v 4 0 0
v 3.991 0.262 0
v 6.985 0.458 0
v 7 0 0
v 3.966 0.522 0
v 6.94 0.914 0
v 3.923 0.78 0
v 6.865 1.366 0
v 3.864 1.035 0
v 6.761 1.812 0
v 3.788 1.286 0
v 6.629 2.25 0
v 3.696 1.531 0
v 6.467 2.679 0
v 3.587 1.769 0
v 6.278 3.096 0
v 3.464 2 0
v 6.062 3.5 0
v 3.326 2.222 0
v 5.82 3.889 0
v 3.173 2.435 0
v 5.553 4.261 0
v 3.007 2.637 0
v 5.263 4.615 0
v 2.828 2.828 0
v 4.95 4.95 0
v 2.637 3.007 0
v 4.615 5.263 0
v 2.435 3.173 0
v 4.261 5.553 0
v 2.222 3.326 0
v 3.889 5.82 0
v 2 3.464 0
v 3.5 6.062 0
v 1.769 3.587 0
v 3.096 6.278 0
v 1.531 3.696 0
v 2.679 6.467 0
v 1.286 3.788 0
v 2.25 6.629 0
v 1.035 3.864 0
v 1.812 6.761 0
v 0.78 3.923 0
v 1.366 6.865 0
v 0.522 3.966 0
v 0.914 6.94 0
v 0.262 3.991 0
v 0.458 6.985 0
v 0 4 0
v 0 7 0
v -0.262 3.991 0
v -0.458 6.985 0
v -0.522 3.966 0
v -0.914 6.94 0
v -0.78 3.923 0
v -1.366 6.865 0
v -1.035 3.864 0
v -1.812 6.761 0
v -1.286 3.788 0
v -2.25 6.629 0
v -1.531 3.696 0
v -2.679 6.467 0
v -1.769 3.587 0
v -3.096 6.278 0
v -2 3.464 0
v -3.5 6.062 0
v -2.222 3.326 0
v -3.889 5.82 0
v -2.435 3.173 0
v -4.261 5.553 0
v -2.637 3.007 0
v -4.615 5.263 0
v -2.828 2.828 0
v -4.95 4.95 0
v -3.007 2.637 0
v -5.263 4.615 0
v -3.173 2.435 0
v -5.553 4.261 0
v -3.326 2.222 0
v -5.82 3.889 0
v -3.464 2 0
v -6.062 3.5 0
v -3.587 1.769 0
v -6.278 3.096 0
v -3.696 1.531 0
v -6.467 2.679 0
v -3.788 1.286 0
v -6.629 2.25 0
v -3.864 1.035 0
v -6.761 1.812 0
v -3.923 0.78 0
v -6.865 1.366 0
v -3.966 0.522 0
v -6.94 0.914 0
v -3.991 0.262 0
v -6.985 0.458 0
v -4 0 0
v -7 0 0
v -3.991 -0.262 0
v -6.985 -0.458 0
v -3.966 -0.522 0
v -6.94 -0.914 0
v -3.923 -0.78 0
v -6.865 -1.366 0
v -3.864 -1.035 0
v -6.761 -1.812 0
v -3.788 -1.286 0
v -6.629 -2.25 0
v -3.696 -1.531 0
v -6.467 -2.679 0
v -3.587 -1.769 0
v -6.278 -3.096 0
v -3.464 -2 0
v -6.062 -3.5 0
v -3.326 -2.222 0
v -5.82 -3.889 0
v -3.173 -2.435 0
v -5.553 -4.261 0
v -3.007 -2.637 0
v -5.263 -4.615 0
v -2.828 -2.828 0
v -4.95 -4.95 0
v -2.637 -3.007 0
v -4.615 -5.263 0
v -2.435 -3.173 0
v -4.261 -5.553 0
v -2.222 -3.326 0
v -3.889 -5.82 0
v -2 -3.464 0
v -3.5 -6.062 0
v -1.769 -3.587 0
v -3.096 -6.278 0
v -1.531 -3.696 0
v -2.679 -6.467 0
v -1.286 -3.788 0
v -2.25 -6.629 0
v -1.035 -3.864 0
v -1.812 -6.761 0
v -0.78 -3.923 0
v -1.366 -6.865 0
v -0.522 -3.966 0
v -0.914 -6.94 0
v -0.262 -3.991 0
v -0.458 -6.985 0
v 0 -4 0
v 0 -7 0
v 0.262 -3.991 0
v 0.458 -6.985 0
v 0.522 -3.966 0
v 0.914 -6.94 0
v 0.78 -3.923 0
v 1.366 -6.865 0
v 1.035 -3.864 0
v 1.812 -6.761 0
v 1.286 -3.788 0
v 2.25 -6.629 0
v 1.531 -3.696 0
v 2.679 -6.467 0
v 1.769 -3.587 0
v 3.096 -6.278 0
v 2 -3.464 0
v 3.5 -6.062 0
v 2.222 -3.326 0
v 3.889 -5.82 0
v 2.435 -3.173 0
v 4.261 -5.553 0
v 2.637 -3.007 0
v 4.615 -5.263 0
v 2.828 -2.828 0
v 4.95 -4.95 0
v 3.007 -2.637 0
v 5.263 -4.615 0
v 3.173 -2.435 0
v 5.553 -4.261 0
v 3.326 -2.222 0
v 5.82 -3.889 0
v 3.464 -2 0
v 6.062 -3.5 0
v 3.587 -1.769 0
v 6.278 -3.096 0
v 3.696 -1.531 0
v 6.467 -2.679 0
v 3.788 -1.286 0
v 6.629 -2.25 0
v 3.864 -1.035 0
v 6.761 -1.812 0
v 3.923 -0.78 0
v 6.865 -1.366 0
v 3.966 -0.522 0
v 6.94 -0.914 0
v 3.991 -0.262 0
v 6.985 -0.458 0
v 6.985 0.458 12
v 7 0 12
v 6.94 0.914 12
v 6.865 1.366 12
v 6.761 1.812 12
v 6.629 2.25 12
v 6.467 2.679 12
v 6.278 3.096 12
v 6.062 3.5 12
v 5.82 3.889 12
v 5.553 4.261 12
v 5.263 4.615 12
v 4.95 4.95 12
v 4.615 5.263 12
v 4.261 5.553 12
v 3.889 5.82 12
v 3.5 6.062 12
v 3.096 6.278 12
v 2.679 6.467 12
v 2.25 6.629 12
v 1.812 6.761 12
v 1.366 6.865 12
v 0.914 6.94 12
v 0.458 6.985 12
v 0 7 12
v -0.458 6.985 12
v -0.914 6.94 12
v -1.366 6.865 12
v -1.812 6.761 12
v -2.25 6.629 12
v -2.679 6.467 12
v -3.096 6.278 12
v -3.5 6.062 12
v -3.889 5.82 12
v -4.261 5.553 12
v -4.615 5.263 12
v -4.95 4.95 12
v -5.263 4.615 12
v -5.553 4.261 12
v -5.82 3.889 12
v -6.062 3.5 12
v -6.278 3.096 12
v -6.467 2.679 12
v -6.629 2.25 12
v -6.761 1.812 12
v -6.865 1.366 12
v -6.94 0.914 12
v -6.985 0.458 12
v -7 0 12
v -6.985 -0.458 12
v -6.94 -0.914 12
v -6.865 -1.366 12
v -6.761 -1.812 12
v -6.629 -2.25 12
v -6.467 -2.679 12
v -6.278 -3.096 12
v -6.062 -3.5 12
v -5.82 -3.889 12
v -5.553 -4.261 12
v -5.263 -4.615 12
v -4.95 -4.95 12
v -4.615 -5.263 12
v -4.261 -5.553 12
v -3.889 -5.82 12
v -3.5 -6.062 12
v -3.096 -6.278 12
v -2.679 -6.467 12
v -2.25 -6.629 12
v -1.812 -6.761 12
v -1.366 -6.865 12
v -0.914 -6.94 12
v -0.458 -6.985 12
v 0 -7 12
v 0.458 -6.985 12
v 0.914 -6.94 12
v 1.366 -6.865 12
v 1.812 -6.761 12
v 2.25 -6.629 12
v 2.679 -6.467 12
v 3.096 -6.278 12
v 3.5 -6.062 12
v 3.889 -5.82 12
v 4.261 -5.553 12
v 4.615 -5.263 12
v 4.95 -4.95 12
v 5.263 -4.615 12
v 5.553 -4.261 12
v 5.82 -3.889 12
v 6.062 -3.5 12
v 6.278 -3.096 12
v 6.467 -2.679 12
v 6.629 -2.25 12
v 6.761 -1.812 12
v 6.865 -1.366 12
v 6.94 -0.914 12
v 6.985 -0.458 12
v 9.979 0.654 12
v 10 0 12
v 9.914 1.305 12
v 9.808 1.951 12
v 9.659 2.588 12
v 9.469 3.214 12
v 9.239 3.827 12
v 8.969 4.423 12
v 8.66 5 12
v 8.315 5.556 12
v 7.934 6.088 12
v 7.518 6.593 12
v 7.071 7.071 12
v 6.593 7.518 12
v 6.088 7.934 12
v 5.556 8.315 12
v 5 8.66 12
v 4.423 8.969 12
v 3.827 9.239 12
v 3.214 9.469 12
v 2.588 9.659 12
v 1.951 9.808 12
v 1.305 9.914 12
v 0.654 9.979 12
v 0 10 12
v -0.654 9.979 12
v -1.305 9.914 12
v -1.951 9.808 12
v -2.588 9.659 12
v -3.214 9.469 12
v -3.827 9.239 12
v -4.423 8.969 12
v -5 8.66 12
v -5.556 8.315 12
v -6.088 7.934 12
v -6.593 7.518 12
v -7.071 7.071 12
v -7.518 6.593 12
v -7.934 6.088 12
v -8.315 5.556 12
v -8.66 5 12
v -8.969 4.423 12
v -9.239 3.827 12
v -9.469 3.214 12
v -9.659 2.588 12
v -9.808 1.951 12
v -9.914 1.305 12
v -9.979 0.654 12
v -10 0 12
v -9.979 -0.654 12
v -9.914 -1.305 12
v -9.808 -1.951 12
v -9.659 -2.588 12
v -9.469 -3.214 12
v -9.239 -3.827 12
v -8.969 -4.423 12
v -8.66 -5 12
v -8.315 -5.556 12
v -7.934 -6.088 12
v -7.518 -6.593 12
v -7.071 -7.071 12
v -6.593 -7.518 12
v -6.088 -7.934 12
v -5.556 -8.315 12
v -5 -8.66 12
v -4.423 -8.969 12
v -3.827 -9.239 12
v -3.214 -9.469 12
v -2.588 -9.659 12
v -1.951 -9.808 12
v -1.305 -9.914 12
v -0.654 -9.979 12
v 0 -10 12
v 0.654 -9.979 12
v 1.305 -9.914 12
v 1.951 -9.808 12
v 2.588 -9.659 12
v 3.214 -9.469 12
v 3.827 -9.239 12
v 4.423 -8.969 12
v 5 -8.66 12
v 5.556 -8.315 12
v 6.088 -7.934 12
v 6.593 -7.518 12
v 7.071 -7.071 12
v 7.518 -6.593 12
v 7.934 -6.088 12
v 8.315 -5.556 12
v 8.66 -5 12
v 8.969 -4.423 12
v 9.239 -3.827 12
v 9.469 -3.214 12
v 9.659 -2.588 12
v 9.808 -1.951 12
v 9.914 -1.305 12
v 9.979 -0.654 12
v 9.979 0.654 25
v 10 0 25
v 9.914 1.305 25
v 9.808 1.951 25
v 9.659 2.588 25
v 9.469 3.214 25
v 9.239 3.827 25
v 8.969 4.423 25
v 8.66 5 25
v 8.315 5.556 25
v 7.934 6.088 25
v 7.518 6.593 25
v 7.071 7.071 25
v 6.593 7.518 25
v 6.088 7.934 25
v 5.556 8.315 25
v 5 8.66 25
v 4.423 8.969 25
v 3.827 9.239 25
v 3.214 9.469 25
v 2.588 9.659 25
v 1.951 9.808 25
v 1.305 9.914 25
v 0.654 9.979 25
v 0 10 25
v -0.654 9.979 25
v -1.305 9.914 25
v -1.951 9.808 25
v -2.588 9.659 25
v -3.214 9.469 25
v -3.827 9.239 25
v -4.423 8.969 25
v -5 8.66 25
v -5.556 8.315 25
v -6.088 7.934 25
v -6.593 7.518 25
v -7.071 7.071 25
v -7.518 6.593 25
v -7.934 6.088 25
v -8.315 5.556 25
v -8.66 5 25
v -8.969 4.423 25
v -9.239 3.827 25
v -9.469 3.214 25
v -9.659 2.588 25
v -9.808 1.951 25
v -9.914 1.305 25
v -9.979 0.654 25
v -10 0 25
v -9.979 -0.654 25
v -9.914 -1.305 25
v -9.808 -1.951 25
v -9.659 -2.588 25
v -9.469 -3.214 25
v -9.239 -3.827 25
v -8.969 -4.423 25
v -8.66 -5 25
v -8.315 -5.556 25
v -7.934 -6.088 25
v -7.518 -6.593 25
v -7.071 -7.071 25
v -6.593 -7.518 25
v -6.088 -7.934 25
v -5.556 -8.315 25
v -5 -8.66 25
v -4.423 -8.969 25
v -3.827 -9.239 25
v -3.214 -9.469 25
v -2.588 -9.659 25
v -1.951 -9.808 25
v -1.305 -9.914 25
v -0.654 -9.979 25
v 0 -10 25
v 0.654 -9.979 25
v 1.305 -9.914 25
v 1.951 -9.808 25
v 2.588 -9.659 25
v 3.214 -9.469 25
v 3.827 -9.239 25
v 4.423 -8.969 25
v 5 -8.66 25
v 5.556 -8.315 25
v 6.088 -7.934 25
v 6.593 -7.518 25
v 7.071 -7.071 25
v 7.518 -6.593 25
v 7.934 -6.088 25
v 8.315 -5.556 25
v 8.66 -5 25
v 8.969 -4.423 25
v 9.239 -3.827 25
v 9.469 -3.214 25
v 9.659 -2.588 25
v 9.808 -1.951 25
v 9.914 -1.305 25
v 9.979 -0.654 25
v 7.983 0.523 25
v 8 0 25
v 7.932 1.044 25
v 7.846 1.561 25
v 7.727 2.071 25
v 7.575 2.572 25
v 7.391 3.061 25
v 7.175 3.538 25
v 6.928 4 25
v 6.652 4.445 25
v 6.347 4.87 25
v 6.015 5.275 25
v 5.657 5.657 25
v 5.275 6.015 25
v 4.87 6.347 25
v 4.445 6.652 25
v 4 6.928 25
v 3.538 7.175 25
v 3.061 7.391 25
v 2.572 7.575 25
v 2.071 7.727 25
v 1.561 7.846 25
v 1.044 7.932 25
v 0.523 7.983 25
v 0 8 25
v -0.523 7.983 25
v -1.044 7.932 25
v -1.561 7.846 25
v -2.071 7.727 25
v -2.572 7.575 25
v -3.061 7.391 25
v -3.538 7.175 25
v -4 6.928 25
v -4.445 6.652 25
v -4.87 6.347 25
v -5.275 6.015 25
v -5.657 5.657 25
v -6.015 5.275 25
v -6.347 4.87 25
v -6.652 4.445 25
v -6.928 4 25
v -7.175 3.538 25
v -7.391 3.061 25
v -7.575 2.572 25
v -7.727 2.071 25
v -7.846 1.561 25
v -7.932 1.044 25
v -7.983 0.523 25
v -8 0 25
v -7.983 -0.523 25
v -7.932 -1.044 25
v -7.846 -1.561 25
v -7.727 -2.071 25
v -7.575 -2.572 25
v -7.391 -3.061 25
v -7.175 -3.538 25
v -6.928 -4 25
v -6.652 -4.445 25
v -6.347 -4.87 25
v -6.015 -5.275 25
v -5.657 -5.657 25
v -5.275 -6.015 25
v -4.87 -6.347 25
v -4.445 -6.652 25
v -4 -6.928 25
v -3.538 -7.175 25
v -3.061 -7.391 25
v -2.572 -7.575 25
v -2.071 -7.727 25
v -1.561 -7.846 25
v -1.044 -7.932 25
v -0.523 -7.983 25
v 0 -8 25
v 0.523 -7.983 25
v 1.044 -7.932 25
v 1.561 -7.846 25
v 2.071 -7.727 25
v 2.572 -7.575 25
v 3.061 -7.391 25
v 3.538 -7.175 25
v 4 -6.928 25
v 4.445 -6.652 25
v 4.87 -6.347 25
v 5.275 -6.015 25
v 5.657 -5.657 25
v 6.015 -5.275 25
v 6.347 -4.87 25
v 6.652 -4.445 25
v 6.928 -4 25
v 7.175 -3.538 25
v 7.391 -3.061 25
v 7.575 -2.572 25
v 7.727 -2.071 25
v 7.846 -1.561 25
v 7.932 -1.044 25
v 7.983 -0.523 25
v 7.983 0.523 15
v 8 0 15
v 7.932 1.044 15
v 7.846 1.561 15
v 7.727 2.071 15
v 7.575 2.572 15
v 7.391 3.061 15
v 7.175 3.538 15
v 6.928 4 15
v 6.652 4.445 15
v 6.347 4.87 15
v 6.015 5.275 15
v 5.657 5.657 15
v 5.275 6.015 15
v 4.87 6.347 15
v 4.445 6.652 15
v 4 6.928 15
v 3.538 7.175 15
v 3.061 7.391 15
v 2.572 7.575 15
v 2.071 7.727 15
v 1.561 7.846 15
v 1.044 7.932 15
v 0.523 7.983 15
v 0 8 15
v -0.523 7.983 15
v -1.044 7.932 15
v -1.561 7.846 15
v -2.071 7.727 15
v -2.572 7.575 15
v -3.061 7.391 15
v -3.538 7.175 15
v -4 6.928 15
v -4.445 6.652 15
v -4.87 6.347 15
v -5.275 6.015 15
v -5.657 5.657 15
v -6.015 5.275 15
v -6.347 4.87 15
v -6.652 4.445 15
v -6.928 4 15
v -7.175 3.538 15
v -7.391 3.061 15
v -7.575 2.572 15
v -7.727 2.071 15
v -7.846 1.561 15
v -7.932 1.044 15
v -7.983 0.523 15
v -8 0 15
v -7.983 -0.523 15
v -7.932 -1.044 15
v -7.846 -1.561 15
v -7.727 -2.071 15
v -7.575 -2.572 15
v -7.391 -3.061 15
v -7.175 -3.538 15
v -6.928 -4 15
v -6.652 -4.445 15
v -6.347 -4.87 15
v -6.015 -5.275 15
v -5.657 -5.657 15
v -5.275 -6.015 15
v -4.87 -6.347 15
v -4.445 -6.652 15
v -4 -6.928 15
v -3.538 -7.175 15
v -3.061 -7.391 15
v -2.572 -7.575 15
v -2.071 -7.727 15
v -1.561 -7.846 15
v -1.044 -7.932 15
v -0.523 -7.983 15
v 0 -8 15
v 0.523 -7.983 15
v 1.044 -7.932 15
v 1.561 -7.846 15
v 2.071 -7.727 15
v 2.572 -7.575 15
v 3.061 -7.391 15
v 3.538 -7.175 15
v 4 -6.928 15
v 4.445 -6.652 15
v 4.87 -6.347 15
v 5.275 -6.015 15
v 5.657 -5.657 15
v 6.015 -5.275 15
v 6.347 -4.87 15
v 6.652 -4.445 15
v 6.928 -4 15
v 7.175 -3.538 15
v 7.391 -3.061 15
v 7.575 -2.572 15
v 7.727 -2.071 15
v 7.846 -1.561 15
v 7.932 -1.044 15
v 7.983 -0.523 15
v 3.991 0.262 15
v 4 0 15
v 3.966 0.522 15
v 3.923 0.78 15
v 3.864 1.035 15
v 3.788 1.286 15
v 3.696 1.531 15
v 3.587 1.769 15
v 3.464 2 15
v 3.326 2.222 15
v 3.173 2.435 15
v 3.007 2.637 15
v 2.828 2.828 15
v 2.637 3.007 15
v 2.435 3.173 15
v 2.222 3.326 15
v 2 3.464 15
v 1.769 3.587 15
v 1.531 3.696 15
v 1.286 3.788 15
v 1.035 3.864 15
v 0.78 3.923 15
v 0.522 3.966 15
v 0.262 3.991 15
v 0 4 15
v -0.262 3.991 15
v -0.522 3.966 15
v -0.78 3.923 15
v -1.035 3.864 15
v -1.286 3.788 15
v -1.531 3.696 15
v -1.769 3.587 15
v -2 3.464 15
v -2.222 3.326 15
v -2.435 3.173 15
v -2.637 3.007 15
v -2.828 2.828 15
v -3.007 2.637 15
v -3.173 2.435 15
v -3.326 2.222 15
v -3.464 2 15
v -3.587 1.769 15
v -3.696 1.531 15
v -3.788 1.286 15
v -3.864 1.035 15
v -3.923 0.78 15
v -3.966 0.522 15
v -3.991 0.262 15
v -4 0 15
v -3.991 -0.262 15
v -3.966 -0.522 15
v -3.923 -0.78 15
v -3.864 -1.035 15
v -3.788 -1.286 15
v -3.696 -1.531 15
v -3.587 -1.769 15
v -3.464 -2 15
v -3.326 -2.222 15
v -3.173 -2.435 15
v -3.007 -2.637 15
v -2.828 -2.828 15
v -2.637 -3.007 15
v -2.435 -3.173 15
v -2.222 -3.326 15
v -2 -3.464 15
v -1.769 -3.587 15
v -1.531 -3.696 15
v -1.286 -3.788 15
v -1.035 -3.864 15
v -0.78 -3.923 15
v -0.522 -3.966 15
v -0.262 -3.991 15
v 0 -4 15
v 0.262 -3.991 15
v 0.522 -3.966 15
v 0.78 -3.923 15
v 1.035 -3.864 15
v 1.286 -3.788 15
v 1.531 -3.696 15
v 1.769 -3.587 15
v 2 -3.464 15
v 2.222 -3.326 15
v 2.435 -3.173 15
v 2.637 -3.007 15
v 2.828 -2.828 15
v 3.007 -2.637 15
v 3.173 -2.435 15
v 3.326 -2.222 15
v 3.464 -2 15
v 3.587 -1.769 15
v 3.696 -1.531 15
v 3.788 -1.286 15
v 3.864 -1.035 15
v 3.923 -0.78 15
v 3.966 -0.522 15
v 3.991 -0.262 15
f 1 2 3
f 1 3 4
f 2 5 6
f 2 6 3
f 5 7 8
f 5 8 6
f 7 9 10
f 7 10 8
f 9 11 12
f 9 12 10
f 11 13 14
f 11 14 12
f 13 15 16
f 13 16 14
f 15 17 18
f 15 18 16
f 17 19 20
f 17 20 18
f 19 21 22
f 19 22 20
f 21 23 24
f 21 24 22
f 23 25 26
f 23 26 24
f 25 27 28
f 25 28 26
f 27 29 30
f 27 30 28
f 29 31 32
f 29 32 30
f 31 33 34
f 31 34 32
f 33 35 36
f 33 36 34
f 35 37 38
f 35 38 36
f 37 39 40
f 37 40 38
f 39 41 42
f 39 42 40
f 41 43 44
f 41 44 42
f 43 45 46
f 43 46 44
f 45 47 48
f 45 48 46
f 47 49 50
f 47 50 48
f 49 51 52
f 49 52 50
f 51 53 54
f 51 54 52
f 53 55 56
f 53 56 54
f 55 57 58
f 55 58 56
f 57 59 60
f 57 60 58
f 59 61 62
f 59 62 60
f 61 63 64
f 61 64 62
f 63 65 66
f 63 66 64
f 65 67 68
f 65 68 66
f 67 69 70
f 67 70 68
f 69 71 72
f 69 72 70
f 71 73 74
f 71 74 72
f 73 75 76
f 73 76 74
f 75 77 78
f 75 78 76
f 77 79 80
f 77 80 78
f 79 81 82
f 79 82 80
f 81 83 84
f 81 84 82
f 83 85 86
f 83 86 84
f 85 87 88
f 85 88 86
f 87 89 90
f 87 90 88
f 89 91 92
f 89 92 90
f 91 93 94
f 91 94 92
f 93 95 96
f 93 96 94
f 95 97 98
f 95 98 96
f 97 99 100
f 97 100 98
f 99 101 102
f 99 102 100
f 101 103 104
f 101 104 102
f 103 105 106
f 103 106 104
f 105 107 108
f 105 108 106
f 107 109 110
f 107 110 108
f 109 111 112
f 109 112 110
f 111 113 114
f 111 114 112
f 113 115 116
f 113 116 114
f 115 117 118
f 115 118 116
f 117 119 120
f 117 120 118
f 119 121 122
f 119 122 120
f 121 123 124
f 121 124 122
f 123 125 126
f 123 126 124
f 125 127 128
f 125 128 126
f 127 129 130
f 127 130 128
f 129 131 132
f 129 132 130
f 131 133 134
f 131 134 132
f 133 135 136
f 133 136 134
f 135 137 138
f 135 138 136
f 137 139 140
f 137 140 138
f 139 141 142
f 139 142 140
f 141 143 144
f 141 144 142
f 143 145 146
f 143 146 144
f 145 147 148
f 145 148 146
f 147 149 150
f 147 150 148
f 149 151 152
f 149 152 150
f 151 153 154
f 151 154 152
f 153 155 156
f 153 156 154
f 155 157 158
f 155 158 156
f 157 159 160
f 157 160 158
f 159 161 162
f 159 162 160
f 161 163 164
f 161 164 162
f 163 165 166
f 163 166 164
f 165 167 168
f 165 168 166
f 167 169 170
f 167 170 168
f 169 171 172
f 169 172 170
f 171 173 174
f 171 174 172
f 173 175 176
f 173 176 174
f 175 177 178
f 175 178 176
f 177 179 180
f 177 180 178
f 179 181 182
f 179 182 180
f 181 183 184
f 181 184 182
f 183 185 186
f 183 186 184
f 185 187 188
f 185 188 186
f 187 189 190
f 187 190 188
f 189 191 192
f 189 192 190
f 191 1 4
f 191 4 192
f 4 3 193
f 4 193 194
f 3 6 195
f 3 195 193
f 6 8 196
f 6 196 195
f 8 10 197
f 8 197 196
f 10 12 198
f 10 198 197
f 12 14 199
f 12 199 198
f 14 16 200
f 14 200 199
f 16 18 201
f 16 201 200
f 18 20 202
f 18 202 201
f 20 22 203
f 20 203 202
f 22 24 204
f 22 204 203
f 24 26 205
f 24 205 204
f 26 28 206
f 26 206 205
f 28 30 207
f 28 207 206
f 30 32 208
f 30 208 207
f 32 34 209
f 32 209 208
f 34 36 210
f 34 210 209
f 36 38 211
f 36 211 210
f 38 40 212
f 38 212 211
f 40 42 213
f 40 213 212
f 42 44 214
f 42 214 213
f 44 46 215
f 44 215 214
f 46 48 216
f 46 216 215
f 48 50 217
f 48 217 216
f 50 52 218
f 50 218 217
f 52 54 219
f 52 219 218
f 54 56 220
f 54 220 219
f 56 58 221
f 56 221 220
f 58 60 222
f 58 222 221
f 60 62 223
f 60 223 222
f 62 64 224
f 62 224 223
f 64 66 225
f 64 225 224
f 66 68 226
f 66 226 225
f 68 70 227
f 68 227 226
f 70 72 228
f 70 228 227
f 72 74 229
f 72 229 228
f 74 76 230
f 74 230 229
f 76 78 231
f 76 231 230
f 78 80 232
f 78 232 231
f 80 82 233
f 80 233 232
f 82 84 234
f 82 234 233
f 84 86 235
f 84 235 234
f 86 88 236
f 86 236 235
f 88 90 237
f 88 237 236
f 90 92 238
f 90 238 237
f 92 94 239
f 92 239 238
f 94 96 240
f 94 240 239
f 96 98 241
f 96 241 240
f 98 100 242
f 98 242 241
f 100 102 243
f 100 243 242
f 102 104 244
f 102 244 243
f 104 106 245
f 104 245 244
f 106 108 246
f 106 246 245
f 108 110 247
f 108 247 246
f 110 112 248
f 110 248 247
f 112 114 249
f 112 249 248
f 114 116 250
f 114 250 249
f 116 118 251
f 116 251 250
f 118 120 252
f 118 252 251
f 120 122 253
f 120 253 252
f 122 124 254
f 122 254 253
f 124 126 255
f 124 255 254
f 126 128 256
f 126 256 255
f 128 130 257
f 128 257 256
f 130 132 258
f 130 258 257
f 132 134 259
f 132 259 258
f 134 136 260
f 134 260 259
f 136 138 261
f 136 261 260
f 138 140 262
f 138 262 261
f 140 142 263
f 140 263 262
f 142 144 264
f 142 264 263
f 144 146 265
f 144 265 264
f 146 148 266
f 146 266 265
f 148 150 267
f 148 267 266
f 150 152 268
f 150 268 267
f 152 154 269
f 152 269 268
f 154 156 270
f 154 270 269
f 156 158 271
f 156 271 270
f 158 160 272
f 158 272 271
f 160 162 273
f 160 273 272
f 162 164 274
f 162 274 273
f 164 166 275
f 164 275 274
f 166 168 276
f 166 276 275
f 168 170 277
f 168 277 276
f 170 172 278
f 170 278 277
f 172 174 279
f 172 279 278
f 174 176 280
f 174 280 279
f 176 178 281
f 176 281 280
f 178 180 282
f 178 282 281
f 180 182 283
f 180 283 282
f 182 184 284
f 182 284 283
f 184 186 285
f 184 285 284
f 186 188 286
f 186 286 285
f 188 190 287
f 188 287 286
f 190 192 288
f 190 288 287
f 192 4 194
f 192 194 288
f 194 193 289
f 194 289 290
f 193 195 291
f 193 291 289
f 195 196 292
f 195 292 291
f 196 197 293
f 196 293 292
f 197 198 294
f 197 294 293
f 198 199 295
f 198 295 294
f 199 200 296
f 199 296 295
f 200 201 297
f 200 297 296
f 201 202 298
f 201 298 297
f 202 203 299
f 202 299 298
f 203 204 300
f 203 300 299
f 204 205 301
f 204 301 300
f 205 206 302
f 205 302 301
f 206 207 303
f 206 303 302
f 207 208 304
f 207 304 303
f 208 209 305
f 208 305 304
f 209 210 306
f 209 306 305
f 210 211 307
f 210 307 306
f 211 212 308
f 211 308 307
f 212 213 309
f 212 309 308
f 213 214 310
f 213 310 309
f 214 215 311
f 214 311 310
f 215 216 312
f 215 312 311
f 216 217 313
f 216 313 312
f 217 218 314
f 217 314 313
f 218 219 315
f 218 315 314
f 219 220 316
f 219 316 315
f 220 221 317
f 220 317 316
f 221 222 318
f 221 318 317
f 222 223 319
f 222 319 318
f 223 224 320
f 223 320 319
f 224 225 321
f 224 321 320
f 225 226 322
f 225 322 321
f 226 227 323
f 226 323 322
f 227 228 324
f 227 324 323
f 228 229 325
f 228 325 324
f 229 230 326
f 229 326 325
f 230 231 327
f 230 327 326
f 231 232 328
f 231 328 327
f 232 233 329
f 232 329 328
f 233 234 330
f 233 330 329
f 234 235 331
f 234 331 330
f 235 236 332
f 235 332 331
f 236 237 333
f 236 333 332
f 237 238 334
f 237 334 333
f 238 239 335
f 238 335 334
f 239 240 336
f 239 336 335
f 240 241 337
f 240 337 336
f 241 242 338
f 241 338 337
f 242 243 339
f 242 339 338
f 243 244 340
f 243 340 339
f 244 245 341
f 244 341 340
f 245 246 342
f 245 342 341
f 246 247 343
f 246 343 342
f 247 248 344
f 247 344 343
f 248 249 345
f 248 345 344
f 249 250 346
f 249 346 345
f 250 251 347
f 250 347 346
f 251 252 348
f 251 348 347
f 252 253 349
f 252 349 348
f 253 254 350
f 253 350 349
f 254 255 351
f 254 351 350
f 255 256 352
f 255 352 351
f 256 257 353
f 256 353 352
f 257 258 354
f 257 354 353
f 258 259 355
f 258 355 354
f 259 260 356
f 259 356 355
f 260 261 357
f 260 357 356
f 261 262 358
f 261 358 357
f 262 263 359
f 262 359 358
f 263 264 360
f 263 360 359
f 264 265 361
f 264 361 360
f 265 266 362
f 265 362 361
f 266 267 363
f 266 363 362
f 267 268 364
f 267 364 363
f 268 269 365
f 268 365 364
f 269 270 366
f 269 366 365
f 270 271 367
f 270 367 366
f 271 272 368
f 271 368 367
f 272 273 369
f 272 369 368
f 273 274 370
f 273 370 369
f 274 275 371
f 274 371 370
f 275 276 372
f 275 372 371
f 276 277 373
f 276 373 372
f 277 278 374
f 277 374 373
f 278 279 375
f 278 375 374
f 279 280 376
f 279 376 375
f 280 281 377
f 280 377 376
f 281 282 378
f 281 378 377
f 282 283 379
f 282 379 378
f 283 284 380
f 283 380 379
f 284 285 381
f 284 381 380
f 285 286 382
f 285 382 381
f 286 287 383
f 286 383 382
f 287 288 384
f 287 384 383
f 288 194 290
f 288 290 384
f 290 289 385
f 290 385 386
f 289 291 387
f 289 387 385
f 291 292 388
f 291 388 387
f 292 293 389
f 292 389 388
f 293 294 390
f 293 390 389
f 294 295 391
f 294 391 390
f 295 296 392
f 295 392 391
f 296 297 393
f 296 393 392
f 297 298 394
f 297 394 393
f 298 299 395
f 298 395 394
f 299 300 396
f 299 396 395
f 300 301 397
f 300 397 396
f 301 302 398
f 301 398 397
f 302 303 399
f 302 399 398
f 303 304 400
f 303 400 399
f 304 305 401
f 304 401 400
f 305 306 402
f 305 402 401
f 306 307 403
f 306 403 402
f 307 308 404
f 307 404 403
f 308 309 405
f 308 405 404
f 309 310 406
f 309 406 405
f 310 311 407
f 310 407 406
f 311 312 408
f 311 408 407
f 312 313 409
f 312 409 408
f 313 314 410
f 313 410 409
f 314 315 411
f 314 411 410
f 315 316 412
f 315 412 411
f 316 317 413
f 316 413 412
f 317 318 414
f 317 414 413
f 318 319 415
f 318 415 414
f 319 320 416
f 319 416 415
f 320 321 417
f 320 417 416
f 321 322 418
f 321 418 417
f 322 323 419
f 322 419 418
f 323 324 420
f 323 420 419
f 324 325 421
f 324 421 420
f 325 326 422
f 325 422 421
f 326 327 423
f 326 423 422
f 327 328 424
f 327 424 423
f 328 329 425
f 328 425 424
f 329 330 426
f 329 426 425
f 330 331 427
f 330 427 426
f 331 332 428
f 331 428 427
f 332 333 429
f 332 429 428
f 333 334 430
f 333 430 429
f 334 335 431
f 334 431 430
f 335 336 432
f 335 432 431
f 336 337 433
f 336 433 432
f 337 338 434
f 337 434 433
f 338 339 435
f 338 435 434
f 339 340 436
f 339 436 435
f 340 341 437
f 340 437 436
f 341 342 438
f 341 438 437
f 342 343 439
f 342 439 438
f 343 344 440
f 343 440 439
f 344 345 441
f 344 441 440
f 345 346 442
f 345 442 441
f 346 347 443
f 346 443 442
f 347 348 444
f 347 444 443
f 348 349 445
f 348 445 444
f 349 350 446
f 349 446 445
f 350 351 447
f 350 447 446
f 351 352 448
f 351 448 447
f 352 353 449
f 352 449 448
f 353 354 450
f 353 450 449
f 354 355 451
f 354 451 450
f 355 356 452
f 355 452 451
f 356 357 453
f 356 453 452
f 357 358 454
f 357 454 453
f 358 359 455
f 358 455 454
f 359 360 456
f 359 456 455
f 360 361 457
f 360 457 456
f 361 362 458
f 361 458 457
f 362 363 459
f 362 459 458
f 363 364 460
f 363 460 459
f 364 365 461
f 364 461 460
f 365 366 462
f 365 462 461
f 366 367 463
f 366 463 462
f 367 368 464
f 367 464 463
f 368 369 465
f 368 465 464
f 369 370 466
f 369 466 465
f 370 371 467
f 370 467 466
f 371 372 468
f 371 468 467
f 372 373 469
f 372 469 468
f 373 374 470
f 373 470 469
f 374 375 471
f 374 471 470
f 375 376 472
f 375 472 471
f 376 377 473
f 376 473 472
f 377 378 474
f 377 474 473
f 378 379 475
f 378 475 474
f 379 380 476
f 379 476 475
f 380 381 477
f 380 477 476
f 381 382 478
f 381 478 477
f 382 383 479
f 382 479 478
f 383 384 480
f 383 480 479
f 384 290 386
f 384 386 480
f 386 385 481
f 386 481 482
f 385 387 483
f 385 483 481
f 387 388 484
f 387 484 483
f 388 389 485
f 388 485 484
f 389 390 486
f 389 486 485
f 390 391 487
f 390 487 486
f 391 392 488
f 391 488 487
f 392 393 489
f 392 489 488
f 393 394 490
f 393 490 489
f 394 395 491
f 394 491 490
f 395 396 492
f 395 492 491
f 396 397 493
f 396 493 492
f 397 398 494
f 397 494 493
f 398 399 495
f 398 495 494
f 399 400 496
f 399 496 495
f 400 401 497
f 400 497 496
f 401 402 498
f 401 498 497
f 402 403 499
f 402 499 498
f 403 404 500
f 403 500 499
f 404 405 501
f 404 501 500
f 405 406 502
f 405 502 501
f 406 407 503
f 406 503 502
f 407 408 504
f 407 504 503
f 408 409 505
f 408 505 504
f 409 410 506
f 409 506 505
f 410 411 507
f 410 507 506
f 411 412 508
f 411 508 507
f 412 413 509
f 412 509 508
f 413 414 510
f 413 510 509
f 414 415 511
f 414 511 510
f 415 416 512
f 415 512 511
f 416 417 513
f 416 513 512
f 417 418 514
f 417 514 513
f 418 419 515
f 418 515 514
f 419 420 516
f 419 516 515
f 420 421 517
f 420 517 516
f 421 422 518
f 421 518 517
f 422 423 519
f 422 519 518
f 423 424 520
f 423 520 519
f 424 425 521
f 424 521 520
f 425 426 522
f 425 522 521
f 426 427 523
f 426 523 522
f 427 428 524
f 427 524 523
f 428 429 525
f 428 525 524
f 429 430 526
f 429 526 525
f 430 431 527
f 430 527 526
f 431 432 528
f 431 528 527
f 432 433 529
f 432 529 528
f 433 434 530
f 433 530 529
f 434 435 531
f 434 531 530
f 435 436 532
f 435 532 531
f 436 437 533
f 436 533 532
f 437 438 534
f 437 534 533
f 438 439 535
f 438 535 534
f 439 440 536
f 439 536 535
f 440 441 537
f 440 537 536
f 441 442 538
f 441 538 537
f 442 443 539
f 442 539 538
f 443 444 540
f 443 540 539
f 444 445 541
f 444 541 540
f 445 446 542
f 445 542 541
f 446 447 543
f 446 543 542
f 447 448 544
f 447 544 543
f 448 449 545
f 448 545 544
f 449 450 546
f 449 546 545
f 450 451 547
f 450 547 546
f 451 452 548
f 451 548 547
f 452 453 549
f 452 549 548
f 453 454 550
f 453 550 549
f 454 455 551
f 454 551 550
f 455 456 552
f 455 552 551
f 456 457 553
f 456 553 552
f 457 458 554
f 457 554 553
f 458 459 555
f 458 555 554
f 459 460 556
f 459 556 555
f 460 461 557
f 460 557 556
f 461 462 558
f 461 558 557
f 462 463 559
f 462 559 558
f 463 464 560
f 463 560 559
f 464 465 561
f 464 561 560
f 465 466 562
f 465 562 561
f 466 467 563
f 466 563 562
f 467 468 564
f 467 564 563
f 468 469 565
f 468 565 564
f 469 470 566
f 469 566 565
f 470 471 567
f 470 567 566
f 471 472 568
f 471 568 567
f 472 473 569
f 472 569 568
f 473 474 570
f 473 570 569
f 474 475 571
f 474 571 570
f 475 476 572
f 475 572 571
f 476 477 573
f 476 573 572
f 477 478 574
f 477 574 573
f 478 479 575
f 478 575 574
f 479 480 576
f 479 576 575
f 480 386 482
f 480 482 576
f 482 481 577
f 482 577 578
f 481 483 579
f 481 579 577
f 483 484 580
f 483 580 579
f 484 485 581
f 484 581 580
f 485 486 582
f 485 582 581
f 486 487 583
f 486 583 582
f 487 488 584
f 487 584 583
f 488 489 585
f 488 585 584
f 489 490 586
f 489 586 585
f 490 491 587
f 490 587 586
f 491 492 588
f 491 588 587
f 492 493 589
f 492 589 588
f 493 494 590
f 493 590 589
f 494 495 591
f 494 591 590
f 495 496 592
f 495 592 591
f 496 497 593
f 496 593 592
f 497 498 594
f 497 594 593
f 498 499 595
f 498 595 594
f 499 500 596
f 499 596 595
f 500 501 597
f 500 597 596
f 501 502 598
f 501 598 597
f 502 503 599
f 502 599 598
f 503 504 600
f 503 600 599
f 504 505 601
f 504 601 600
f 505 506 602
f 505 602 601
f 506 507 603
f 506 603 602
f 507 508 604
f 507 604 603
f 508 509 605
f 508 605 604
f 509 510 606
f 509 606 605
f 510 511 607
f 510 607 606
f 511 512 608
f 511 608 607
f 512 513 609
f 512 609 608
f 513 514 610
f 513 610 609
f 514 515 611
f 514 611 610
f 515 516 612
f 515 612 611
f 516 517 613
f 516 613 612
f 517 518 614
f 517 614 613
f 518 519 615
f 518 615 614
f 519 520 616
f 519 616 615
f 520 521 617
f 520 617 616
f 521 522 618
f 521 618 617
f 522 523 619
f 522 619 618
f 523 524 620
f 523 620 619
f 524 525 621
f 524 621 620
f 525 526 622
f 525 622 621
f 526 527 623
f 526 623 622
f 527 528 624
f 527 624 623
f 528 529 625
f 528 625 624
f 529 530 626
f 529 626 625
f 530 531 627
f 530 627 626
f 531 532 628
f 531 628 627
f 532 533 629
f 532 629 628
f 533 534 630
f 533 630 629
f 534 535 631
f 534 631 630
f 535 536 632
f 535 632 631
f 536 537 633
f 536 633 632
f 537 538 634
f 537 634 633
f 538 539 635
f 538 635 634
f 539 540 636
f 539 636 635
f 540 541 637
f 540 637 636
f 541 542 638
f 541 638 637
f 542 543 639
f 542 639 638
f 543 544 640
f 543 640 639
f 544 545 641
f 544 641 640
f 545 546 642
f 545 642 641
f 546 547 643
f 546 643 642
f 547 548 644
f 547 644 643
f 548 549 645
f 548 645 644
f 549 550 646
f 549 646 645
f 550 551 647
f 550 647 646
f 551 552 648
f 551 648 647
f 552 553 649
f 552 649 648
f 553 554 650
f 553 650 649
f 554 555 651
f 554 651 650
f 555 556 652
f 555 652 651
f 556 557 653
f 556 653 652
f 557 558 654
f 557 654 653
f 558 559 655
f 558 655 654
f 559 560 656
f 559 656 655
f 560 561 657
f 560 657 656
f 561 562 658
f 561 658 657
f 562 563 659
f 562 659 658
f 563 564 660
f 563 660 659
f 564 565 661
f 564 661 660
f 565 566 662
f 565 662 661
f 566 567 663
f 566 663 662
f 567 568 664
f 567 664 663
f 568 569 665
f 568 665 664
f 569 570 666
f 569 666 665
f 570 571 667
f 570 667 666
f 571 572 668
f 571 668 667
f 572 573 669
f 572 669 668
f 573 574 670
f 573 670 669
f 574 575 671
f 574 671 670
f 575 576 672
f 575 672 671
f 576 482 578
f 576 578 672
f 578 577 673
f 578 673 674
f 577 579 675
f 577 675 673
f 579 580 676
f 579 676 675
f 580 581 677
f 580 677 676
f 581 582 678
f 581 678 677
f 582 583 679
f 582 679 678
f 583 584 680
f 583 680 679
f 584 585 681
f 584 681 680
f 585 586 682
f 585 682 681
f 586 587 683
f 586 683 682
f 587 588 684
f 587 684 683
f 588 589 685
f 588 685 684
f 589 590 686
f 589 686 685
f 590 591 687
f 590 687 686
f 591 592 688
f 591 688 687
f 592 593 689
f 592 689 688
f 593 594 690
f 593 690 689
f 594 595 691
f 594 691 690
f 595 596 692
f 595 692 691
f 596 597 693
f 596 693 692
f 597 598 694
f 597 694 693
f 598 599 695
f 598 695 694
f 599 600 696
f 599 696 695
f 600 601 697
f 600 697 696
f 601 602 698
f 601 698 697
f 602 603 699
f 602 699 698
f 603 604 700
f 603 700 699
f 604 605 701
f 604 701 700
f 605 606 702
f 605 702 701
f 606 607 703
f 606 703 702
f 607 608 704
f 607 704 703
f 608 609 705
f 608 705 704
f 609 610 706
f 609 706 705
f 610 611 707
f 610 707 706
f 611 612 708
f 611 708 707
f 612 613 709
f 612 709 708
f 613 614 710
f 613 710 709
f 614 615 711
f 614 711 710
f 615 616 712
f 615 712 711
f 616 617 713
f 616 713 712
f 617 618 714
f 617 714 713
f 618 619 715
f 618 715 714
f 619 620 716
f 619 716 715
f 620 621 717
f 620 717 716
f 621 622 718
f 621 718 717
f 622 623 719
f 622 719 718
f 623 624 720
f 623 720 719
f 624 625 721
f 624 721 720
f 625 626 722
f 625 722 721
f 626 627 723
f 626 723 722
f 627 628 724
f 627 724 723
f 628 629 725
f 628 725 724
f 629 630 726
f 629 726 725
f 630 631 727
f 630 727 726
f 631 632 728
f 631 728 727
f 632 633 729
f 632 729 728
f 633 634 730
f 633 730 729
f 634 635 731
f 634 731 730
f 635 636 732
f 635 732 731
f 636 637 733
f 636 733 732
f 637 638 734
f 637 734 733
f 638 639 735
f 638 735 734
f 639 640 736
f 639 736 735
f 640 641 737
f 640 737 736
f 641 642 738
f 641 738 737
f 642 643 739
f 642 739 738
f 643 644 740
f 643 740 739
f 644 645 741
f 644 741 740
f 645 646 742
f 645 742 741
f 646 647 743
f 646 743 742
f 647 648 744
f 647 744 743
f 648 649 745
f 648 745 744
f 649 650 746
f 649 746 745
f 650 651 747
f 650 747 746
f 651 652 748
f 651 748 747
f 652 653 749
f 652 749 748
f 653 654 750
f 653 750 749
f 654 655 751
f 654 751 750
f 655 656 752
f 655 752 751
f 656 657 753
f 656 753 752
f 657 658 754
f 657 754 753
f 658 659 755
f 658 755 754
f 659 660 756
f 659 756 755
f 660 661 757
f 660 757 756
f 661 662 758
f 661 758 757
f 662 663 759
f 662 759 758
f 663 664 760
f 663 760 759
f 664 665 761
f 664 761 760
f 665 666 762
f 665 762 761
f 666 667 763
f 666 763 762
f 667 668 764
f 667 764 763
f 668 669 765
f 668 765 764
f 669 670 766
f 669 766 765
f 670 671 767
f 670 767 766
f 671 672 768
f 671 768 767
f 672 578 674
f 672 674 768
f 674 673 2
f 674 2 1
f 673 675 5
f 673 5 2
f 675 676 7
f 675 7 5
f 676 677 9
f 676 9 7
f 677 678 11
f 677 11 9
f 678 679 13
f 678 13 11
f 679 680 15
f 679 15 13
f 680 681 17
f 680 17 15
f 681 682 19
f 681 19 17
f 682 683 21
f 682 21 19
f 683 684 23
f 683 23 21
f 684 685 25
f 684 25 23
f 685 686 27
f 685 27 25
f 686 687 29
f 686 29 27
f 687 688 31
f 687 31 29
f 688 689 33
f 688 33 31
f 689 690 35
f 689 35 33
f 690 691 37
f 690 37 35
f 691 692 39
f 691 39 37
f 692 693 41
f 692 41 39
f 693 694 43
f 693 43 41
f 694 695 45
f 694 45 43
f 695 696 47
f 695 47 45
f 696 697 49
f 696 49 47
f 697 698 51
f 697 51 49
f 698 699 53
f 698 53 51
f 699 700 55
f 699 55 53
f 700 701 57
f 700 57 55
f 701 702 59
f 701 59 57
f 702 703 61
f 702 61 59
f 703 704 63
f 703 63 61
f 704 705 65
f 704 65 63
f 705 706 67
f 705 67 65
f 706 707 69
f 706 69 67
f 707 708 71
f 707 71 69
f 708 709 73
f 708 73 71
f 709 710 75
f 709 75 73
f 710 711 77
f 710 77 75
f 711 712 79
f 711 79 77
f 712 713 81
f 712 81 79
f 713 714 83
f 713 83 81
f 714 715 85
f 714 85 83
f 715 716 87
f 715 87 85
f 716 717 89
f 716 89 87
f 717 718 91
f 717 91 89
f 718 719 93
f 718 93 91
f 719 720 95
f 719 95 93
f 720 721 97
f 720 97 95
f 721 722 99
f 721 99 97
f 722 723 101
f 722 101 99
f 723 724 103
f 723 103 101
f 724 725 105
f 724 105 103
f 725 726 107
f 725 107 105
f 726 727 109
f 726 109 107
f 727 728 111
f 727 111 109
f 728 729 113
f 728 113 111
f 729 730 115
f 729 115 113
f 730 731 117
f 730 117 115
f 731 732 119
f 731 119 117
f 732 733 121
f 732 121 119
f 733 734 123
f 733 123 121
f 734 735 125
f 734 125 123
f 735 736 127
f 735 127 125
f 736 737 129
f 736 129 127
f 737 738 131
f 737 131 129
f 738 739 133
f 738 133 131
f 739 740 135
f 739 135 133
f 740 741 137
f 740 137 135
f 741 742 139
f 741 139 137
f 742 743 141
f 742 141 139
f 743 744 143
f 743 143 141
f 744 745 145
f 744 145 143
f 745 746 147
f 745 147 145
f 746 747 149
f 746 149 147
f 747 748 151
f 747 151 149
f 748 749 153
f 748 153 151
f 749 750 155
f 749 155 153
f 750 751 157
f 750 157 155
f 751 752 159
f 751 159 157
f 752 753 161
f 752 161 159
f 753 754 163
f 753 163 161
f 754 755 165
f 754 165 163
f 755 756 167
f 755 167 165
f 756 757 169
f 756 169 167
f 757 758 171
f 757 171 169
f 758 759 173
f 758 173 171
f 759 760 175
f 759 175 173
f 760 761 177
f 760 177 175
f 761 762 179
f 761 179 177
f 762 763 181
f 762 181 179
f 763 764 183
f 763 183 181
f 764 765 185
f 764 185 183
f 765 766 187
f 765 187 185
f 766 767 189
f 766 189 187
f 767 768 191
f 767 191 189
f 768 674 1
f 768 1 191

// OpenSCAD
// Original MechIntel educational model. CC0-1.0. Units: mm.
// Not a standardized or load-rated component.
$fn=96;
// Section points: [radius, height], mm. Edit to change the profile.
section=[[4, 0], [7, 0], [7, 12], [10, 12], [10, 25], [8, 25], [8, 15], [4, 15]];
rotate_extrude($fn=96) polygon(points=section);
